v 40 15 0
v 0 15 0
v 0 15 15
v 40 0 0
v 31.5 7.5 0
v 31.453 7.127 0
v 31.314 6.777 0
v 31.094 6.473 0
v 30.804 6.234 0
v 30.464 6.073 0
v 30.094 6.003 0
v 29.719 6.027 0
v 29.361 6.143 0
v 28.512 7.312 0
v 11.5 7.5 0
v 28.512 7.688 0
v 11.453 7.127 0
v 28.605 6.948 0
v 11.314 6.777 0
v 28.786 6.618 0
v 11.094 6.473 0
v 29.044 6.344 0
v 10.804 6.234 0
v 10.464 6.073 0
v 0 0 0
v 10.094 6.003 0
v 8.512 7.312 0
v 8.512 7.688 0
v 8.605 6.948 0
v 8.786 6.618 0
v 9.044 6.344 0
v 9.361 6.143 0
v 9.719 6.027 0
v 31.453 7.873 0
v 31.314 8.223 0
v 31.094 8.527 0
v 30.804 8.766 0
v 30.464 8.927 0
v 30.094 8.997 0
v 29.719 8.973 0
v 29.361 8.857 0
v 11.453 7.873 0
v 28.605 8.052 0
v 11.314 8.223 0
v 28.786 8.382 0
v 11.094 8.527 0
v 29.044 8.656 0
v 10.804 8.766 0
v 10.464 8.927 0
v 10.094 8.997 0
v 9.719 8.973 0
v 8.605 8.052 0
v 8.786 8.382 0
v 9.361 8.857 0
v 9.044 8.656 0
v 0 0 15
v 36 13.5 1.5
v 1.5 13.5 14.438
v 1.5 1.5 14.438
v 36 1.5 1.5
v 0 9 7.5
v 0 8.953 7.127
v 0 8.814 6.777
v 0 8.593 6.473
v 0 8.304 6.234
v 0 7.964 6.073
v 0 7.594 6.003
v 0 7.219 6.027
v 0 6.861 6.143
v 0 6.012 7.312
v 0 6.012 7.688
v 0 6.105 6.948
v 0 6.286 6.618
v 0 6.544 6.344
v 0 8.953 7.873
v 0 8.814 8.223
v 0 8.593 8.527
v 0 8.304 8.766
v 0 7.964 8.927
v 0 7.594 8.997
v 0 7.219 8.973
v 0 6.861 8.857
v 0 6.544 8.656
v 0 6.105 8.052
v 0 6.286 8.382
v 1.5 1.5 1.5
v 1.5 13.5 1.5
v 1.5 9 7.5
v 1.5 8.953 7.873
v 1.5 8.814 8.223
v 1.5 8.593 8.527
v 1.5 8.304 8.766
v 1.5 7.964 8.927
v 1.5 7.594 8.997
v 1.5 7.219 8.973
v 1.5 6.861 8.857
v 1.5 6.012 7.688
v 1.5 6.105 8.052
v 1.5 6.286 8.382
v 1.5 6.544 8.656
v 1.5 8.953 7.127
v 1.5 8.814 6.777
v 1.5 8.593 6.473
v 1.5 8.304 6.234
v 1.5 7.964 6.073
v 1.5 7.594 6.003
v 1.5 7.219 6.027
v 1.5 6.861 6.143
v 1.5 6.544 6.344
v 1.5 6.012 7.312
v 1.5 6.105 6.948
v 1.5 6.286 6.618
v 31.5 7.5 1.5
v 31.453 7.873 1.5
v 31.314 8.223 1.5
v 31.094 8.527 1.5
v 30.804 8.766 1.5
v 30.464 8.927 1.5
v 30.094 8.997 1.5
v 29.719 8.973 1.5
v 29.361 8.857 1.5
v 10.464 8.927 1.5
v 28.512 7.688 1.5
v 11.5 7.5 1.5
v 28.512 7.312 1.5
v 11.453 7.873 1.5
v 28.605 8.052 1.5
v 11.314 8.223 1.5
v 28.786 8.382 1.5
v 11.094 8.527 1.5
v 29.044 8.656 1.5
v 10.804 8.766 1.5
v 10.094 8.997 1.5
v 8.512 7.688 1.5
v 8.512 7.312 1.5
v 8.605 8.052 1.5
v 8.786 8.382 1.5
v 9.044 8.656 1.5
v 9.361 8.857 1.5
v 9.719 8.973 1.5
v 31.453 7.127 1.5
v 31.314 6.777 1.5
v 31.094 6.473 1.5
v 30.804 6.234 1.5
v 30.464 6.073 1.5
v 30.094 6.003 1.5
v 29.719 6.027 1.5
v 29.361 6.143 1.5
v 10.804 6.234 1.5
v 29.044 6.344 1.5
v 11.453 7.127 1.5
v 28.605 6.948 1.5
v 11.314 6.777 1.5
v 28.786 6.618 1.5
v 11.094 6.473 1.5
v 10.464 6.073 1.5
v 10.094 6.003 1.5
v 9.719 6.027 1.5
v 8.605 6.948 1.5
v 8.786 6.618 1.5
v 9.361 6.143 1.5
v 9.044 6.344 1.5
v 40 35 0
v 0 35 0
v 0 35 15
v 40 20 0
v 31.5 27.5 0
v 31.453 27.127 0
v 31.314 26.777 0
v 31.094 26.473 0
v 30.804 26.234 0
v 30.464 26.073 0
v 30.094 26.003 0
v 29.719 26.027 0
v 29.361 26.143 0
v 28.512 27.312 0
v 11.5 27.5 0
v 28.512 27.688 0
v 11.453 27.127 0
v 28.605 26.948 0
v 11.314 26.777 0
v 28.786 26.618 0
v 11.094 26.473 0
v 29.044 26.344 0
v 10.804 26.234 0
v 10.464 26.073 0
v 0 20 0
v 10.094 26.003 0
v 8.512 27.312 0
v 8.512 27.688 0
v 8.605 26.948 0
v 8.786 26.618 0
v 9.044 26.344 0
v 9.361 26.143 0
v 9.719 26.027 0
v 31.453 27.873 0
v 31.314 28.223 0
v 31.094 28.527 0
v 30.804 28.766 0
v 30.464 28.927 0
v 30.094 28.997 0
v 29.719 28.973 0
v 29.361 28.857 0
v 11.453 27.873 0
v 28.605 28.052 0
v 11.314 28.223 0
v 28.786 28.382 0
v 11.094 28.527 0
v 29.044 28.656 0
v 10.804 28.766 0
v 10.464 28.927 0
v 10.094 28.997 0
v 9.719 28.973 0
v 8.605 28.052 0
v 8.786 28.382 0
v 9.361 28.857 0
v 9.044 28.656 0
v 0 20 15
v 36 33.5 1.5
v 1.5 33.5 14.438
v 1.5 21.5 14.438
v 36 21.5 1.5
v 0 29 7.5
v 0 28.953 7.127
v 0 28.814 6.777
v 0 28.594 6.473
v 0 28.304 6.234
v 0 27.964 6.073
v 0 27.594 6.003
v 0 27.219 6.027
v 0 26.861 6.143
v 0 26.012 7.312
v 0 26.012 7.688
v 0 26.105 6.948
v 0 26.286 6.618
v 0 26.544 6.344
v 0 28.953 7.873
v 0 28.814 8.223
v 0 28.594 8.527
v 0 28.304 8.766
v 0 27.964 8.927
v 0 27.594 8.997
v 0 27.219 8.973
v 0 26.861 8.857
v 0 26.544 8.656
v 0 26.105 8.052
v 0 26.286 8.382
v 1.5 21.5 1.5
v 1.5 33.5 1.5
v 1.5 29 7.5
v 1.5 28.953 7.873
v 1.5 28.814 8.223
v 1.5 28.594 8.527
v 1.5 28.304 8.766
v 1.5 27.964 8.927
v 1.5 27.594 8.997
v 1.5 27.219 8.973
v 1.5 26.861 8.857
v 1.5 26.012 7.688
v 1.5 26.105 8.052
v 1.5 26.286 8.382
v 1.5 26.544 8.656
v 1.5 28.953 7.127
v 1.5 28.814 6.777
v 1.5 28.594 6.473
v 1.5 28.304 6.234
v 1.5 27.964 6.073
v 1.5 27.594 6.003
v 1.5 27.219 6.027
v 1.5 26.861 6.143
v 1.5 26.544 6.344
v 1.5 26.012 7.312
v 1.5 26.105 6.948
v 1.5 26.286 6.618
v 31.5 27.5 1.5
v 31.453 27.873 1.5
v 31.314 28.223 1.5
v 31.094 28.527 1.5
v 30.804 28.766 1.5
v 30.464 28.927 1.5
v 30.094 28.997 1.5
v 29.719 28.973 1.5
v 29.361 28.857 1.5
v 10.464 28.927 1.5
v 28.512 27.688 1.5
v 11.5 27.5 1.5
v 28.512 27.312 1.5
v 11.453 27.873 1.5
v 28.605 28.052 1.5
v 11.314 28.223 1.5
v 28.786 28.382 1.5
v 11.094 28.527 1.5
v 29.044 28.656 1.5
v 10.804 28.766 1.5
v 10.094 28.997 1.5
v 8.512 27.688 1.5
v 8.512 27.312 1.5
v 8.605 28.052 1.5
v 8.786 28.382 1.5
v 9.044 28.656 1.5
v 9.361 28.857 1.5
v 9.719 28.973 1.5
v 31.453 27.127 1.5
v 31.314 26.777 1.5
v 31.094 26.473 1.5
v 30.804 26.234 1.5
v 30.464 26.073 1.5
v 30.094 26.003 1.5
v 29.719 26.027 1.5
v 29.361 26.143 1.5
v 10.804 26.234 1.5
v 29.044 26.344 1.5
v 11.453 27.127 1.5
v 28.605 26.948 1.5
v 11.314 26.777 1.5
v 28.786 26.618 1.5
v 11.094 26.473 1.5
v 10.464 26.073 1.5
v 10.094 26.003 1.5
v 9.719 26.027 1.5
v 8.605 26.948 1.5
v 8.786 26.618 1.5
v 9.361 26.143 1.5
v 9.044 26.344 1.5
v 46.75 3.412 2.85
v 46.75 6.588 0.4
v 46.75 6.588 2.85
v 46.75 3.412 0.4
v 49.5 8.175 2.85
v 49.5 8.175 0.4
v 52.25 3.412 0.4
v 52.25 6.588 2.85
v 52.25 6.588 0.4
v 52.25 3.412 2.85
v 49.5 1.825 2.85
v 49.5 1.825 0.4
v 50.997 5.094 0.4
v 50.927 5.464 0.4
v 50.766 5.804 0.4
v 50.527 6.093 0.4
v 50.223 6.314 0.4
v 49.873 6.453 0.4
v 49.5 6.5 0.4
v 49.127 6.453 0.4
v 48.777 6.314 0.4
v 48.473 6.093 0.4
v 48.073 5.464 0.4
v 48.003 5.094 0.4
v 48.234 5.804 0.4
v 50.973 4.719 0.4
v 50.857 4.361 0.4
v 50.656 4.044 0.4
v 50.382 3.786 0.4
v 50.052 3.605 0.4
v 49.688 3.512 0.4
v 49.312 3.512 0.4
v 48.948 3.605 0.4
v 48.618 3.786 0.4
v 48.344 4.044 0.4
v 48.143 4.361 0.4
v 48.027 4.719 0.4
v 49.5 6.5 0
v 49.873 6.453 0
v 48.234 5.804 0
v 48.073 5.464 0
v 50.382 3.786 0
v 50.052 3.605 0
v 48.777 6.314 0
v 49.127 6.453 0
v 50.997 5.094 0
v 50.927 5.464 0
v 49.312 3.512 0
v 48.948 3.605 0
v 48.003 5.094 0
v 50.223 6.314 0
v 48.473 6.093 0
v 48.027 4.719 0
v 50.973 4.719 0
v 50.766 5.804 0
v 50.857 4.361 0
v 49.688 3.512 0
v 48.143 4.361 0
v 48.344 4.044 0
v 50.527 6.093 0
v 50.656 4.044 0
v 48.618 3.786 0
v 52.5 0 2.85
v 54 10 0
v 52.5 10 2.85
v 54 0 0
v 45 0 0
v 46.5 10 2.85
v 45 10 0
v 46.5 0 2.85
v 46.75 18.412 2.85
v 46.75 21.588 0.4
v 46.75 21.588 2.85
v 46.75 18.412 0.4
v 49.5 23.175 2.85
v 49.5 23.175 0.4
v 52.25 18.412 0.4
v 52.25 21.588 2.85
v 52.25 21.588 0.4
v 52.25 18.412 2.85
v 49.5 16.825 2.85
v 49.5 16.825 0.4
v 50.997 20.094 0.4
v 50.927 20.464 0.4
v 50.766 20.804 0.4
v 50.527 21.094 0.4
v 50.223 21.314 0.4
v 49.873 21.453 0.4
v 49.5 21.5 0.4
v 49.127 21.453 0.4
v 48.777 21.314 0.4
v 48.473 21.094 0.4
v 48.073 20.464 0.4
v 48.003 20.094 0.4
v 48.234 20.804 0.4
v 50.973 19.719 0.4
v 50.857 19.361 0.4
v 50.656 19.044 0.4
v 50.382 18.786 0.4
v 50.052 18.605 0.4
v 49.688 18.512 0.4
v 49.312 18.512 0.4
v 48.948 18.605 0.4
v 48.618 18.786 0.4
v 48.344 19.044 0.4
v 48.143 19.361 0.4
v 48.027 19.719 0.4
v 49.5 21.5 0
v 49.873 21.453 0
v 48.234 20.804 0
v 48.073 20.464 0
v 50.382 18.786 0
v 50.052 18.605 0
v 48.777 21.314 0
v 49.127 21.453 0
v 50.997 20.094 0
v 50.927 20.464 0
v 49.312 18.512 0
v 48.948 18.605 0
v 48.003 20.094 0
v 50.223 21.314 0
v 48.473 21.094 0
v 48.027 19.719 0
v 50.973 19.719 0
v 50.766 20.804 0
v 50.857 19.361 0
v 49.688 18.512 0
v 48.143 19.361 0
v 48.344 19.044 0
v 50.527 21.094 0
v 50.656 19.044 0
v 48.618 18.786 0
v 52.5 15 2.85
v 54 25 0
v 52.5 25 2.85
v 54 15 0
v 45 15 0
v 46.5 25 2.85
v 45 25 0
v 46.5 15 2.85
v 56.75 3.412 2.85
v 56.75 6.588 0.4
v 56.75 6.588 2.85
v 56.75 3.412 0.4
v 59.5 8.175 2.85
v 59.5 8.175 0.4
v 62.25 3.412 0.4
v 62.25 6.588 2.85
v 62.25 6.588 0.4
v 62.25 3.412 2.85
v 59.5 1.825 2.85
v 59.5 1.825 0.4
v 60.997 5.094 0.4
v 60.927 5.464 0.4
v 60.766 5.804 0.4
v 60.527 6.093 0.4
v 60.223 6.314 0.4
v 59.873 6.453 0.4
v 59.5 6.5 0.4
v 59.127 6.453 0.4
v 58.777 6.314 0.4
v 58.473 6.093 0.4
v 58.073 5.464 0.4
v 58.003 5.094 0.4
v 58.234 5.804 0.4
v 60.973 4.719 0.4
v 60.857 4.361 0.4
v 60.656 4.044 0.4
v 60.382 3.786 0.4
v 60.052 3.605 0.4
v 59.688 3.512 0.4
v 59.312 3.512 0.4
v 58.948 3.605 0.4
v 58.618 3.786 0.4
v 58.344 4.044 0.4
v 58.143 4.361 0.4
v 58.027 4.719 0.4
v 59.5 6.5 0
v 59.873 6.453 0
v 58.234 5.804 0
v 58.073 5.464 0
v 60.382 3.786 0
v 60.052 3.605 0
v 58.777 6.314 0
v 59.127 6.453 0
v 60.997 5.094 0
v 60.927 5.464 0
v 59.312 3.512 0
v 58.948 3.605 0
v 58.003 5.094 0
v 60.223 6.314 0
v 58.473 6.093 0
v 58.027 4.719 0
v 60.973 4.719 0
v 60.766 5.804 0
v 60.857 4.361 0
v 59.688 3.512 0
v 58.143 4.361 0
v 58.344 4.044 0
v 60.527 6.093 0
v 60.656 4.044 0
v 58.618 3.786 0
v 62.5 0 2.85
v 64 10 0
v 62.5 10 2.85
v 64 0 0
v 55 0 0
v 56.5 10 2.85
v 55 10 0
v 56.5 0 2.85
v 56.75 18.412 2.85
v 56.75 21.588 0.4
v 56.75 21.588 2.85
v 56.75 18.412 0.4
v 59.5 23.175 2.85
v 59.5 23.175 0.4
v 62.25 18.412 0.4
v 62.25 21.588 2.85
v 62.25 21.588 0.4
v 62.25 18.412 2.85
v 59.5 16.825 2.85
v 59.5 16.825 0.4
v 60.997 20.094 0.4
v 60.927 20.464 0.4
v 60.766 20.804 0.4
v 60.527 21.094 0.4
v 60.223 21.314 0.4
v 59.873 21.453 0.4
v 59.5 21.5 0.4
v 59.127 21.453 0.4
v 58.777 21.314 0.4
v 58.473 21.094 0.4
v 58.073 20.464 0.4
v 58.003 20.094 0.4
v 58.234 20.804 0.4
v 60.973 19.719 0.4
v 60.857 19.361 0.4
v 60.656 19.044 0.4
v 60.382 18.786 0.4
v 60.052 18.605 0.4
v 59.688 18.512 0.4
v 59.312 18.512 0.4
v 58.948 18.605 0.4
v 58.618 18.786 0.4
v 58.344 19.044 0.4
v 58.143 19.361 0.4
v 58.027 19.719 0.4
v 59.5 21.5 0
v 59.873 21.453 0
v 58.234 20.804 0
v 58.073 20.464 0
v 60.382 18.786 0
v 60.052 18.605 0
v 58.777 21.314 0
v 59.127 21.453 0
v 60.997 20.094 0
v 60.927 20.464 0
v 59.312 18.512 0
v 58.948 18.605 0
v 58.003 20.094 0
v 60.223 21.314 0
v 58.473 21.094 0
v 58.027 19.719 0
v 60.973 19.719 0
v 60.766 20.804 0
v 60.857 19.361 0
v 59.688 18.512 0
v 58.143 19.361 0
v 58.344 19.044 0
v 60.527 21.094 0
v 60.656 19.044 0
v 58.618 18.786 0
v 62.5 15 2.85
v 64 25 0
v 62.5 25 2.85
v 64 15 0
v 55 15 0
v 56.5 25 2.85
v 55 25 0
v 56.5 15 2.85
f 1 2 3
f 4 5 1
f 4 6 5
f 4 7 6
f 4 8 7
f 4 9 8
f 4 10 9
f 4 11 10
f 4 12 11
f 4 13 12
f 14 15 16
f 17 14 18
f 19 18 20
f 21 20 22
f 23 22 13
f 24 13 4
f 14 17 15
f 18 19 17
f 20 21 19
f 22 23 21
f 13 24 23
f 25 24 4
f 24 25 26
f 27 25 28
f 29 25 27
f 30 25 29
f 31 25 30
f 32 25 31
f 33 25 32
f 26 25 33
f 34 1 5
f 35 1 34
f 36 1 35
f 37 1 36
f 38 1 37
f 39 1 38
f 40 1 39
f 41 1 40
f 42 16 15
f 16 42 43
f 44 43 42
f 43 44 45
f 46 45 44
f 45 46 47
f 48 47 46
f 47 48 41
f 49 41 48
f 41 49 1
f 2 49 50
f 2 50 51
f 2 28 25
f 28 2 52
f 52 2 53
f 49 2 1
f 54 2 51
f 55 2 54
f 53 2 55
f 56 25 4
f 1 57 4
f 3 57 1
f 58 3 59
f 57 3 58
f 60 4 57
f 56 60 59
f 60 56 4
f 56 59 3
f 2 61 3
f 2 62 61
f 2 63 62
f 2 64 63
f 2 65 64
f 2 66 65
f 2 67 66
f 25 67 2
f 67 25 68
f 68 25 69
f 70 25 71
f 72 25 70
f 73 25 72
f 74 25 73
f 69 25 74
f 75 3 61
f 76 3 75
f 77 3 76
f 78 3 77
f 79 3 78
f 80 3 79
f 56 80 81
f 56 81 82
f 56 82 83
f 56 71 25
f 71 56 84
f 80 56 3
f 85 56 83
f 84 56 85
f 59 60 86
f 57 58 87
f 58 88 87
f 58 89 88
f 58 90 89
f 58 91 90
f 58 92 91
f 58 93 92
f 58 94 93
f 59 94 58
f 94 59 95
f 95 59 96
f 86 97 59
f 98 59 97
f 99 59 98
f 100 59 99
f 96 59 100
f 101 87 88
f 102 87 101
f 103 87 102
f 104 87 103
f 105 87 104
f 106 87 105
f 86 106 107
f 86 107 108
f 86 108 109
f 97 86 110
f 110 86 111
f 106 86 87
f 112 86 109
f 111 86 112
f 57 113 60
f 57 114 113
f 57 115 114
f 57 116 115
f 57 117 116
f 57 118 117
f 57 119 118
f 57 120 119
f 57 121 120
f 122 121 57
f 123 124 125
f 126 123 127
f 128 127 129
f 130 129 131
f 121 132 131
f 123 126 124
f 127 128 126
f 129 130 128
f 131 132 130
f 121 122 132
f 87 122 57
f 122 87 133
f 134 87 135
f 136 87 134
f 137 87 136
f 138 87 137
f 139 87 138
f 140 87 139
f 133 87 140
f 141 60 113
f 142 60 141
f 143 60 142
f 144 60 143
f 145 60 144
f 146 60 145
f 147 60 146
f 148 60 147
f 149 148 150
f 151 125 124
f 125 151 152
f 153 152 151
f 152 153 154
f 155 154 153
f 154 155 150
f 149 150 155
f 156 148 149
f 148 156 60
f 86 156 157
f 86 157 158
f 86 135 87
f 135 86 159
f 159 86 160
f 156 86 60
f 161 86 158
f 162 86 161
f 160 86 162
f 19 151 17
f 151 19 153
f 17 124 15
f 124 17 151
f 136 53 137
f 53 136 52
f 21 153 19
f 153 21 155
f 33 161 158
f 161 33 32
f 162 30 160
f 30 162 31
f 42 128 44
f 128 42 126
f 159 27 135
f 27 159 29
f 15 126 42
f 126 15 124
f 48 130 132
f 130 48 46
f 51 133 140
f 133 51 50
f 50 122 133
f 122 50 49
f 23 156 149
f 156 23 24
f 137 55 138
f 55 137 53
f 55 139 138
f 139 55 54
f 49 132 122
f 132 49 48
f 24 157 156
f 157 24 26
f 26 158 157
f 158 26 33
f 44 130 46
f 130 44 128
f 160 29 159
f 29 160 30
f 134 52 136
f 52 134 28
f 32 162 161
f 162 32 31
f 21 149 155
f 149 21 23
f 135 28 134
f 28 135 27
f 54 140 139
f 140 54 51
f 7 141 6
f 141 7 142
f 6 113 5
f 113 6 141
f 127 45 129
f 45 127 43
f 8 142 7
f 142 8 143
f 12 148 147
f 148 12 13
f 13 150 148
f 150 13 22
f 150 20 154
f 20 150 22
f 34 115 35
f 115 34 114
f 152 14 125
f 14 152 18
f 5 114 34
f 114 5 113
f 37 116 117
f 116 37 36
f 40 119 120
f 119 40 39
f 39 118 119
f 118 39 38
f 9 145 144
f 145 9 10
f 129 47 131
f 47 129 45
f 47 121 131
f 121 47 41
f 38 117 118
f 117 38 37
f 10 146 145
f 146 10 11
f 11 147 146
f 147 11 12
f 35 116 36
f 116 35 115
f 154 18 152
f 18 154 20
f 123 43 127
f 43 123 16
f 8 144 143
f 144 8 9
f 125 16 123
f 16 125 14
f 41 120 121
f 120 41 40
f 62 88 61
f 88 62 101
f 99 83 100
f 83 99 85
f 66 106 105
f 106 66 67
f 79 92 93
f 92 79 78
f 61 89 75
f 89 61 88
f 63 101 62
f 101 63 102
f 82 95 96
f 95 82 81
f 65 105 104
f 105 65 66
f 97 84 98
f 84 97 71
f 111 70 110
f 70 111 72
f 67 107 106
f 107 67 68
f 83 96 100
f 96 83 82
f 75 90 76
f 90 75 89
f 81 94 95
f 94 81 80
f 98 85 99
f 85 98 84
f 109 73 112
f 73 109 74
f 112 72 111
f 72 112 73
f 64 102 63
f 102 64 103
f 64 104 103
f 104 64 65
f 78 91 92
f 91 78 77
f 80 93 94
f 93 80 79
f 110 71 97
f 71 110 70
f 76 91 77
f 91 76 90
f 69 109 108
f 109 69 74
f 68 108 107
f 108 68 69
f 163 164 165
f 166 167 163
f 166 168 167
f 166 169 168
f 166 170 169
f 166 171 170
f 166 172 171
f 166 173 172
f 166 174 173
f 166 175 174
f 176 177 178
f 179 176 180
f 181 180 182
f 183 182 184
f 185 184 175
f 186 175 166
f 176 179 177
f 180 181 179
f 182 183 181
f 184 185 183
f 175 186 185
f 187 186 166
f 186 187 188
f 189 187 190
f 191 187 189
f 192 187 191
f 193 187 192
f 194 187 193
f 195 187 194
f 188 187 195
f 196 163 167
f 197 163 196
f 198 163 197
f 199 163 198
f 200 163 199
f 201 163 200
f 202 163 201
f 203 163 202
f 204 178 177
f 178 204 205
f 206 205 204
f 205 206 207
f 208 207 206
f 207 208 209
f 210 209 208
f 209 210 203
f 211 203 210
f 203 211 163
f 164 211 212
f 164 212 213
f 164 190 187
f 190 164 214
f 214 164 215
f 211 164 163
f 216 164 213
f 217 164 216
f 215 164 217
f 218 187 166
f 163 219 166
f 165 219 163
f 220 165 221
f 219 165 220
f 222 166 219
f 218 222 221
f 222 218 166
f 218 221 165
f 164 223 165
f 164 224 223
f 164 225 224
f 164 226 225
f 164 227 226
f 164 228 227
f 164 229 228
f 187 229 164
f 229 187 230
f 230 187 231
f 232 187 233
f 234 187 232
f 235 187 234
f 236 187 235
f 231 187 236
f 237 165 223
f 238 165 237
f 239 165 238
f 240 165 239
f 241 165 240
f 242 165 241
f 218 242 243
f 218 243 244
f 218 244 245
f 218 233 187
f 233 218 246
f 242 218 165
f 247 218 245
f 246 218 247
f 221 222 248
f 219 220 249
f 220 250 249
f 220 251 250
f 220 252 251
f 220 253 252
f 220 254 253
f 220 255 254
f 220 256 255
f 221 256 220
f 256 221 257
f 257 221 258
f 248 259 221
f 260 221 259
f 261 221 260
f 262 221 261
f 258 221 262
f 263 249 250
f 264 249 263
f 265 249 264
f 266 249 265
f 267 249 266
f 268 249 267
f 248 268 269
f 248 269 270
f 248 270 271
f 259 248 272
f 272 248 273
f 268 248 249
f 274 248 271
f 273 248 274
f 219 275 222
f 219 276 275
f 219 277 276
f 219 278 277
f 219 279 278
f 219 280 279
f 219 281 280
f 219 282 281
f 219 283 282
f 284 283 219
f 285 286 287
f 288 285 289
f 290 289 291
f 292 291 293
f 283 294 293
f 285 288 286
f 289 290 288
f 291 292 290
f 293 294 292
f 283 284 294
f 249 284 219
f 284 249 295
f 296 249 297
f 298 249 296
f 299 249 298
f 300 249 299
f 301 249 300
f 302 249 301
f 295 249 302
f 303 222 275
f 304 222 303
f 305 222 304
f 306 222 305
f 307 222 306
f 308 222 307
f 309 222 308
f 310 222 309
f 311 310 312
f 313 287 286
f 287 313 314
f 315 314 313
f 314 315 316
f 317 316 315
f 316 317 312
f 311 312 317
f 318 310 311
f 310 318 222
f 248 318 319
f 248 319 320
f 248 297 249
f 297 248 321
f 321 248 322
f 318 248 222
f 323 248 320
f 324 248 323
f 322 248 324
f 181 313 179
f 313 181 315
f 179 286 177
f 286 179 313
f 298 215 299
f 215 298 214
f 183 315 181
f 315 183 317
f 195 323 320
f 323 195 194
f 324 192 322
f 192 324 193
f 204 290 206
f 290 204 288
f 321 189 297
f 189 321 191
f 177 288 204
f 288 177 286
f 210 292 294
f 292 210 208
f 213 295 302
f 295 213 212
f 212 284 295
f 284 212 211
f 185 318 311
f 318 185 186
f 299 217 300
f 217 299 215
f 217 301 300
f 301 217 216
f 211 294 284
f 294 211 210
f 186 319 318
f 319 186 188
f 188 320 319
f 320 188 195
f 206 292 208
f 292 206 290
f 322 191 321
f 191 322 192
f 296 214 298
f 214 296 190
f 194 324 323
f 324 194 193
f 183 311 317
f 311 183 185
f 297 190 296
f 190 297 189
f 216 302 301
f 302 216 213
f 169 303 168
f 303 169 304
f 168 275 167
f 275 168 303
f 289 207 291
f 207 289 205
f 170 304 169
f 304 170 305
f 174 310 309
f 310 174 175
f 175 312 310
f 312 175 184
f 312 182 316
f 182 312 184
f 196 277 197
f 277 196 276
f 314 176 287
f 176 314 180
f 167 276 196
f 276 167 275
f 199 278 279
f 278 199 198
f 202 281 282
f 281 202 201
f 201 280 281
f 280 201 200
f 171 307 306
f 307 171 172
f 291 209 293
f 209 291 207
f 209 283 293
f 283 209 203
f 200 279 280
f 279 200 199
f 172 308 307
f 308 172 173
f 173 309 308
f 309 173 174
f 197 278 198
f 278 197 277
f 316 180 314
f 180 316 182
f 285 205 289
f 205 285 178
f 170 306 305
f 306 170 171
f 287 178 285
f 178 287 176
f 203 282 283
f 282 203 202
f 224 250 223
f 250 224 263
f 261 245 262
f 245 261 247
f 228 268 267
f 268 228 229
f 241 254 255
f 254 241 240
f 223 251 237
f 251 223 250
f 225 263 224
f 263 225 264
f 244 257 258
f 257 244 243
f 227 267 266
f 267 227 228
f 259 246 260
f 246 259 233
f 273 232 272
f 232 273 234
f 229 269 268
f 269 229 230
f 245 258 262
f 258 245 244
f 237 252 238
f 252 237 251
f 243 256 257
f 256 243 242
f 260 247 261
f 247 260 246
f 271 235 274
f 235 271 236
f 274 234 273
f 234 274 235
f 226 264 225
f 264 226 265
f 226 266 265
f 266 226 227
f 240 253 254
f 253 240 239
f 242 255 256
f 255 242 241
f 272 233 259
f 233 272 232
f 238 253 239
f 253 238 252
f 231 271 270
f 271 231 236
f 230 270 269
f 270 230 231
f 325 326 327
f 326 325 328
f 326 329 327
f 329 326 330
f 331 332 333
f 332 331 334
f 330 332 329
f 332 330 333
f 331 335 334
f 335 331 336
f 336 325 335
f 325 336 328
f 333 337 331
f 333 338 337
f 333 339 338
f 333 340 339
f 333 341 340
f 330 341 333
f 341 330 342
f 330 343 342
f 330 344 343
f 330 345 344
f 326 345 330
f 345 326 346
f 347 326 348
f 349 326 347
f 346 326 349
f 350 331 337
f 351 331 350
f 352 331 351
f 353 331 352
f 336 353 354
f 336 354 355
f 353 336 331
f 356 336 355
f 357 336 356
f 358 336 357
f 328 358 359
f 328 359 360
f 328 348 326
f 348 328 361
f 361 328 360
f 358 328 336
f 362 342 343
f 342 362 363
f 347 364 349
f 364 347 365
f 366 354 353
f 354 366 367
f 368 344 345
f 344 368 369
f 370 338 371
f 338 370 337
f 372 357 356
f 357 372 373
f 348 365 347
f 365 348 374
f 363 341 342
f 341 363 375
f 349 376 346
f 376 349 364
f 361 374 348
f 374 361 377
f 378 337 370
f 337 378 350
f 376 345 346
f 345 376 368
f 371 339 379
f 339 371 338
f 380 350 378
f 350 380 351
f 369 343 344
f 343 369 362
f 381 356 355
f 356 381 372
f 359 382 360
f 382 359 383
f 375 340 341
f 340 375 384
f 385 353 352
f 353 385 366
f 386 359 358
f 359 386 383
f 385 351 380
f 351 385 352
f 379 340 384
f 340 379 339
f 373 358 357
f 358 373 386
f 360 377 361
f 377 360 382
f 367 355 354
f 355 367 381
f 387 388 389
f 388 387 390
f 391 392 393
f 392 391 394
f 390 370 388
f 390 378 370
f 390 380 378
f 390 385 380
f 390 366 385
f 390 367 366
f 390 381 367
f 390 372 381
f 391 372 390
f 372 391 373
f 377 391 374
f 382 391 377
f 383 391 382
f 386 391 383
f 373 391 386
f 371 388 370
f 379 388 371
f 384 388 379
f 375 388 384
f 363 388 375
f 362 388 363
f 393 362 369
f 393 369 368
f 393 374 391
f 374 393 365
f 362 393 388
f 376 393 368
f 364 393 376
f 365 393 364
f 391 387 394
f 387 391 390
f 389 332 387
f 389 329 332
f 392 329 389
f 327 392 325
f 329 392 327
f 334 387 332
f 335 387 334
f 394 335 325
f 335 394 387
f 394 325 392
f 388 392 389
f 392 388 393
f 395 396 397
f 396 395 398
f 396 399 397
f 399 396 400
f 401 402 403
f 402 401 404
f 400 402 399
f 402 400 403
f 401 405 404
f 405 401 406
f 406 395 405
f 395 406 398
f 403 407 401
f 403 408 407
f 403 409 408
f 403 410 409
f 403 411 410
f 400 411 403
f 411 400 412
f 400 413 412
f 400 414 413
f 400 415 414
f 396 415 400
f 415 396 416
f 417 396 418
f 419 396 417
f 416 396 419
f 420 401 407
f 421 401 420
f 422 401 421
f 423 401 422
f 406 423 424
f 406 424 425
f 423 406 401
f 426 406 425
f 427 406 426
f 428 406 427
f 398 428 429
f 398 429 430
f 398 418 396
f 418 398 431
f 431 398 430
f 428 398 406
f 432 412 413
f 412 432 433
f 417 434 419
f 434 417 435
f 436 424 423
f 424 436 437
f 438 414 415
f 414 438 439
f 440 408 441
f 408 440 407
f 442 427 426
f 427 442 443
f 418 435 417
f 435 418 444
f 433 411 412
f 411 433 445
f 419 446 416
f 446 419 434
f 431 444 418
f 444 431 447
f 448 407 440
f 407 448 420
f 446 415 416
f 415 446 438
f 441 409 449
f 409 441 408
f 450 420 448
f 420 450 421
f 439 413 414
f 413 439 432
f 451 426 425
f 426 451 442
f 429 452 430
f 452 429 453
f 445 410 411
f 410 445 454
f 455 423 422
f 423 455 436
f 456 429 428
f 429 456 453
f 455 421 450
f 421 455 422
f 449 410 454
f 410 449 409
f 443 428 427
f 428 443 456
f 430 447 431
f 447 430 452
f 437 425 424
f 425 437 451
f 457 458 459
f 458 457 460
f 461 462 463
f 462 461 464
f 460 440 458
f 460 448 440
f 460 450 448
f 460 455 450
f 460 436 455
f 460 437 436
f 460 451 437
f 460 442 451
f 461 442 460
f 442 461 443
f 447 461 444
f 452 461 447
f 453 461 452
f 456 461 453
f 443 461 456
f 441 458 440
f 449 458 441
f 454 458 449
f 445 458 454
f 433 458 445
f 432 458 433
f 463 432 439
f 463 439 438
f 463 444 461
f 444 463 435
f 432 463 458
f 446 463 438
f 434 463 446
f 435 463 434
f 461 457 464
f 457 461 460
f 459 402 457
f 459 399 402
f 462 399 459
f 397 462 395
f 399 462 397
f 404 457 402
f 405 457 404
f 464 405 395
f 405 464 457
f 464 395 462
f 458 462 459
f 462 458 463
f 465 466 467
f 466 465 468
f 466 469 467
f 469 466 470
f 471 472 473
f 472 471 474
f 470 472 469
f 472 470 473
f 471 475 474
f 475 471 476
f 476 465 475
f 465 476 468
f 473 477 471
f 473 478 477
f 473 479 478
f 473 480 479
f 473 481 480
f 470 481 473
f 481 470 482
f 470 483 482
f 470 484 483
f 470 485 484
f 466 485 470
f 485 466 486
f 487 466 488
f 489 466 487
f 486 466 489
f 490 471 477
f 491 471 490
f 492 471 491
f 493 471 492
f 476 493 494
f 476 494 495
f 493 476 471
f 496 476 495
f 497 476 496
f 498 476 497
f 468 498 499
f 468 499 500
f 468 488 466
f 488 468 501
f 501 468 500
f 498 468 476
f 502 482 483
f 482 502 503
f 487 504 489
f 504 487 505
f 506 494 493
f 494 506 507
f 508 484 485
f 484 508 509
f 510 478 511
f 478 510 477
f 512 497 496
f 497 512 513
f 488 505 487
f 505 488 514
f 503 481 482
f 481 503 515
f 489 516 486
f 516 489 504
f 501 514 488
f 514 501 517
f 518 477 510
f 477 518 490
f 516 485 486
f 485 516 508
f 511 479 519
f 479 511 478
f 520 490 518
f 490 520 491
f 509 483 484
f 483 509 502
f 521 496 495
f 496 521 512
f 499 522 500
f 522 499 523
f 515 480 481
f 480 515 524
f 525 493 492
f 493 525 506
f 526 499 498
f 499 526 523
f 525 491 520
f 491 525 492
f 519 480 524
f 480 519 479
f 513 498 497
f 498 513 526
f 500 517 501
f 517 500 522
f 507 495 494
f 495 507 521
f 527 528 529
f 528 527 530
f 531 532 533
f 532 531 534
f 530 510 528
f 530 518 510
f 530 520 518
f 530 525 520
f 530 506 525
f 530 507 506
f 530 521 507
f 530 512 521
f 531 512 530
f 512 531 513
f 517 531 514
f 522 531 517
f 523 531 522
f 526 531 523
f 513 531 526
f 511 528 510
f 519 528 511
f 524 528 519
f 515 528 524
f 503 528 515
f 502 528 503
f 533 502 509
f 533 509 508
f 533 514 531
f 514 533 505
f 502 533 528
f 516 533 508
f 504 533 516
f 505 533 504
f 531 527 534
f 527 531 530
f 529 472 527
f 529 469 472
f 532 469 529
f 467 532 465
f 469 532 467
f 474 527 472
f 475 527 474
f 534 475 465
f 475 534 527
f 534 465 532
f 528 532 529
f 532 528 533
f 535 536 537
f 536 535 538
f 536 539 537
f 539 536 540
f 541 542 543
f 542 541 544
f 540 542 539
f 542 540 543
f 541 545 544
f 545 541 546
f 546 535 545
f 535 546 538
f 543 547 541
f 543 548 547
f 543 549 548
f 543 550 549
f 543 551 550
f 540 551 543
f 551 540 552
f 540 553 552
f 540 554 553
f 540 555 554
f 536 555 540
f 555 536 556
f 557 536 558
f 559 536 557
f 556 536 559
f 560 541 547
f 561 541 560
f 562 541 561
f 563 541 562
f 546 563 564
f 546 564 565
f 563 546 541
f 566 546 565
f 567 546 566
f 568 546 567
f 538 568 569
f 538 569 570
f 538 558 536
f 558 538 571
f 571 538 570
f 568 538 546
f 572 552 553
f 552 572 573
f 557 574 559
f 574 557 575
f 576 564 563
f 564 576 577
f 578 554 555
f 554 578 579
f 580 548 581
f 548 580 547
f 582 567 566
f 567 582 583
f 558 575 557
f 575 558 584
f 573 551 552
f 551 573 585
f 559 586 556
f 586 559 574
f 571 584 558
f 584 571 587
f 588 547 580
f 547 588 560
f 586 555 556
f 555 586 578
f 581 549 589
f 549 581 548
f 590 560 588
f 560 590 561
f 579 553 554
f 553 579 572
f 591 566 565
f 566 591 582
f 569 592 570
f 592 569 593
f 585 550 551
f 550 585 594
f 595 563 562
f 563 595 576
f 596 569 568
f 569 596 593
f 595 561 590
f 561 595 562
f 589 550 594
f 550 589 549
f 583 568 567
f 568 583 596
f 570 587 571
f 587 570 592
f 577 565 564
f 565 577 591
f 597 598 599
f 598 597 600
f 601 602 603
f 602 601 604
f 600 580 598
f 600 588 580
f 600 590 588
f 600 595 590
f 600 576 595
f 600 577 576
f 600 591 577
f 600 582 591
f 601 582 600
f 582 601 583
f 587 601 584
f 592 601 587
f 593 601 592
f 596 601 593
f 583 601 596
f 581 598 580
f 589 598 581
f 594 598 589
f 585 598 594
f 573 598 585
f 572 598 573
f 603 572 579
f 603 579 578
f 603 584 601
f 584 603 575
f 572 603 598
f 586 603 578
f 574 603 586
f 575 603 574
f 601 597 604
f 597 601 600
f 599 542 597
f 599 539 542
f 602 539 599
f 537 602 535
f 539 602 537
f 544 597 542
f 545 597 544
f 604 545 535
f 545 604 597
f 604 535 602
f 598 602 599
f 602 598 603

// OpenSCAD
/**
Copyright Caitlin Campbell 2020.
This documentation describes Open Hardware and is licensed under the
CERN OHL-S v2.
You may redistribute and modify this documentation under the terms of the
CERN OHL-S v2. (http://ohwr.org/cernohl). This documentation is distributed
WITHOUT ANY EXPRESS OR IMPLIED WARRANTY, INCLUDING OF
MERCHANTABILITY, SATISFACTORY QUALITY AND FITNESS FOR A
PARTICULAR PURPOSE. Please see the CERN OHL-S v.2 for applicable
conditions.
**/


// The height,width, and length of the in rail shim
holder_h = 2.85;
holder_w = 9.00;
holder_l = 10;


// Corner piece
translate([0,15,0])
corner();

// Corner piece
translate([0,35,0])
corner();

translate([45,10,0])
holder();
translate([45,25,0])
holder();
translate([55,10,0])
holder();
translate([55,25,0])
holder();



// The corner piece itself
module corner() {
	rotate([90,0,0])
    difference() {
        linear_extrude(15)
        polygon([[0,0],[0,15],[40,0]]);
        
        translate([1.5,1.5,1.5])
        cube([40,40,12]);
        
        translate([10,1.5,7.5])
        rotate([90,0,0])
        cylinder(d=3, h=1.5, $fn=25);
        
        translate([30,1.5,7.5])
        rotate([90,0,0])
        cylinder(d=3, h=1.5, $fn=25);
        
        translate([0,7.5,7.5])
        rotate([0,90,0])
        cylinder(d=3, h=1.5, $fn=25);
    }
}

// Holder itself.
module holder() {
	rotate([90,0,0])
    difference() {
        linear_extrude(holder_l)
        polygon([[0,0],[holder_w,0],[holder_w-1.5,holder_h],[1.5,holder_h]]);

        translate([holder_w/2,2.85,holder_l/2])
        rotate([90,90,0])
        screw_hole();
    }
}



module screw_hole(){
	
	// This is where we define the nut so we can cut out with it later. Overall a bad idea how I did it. This is subject to change.
	cylinder($fn=6, d=6.35,h=2.45);
	cylinder($fn=25, d=3,h=18);

}
